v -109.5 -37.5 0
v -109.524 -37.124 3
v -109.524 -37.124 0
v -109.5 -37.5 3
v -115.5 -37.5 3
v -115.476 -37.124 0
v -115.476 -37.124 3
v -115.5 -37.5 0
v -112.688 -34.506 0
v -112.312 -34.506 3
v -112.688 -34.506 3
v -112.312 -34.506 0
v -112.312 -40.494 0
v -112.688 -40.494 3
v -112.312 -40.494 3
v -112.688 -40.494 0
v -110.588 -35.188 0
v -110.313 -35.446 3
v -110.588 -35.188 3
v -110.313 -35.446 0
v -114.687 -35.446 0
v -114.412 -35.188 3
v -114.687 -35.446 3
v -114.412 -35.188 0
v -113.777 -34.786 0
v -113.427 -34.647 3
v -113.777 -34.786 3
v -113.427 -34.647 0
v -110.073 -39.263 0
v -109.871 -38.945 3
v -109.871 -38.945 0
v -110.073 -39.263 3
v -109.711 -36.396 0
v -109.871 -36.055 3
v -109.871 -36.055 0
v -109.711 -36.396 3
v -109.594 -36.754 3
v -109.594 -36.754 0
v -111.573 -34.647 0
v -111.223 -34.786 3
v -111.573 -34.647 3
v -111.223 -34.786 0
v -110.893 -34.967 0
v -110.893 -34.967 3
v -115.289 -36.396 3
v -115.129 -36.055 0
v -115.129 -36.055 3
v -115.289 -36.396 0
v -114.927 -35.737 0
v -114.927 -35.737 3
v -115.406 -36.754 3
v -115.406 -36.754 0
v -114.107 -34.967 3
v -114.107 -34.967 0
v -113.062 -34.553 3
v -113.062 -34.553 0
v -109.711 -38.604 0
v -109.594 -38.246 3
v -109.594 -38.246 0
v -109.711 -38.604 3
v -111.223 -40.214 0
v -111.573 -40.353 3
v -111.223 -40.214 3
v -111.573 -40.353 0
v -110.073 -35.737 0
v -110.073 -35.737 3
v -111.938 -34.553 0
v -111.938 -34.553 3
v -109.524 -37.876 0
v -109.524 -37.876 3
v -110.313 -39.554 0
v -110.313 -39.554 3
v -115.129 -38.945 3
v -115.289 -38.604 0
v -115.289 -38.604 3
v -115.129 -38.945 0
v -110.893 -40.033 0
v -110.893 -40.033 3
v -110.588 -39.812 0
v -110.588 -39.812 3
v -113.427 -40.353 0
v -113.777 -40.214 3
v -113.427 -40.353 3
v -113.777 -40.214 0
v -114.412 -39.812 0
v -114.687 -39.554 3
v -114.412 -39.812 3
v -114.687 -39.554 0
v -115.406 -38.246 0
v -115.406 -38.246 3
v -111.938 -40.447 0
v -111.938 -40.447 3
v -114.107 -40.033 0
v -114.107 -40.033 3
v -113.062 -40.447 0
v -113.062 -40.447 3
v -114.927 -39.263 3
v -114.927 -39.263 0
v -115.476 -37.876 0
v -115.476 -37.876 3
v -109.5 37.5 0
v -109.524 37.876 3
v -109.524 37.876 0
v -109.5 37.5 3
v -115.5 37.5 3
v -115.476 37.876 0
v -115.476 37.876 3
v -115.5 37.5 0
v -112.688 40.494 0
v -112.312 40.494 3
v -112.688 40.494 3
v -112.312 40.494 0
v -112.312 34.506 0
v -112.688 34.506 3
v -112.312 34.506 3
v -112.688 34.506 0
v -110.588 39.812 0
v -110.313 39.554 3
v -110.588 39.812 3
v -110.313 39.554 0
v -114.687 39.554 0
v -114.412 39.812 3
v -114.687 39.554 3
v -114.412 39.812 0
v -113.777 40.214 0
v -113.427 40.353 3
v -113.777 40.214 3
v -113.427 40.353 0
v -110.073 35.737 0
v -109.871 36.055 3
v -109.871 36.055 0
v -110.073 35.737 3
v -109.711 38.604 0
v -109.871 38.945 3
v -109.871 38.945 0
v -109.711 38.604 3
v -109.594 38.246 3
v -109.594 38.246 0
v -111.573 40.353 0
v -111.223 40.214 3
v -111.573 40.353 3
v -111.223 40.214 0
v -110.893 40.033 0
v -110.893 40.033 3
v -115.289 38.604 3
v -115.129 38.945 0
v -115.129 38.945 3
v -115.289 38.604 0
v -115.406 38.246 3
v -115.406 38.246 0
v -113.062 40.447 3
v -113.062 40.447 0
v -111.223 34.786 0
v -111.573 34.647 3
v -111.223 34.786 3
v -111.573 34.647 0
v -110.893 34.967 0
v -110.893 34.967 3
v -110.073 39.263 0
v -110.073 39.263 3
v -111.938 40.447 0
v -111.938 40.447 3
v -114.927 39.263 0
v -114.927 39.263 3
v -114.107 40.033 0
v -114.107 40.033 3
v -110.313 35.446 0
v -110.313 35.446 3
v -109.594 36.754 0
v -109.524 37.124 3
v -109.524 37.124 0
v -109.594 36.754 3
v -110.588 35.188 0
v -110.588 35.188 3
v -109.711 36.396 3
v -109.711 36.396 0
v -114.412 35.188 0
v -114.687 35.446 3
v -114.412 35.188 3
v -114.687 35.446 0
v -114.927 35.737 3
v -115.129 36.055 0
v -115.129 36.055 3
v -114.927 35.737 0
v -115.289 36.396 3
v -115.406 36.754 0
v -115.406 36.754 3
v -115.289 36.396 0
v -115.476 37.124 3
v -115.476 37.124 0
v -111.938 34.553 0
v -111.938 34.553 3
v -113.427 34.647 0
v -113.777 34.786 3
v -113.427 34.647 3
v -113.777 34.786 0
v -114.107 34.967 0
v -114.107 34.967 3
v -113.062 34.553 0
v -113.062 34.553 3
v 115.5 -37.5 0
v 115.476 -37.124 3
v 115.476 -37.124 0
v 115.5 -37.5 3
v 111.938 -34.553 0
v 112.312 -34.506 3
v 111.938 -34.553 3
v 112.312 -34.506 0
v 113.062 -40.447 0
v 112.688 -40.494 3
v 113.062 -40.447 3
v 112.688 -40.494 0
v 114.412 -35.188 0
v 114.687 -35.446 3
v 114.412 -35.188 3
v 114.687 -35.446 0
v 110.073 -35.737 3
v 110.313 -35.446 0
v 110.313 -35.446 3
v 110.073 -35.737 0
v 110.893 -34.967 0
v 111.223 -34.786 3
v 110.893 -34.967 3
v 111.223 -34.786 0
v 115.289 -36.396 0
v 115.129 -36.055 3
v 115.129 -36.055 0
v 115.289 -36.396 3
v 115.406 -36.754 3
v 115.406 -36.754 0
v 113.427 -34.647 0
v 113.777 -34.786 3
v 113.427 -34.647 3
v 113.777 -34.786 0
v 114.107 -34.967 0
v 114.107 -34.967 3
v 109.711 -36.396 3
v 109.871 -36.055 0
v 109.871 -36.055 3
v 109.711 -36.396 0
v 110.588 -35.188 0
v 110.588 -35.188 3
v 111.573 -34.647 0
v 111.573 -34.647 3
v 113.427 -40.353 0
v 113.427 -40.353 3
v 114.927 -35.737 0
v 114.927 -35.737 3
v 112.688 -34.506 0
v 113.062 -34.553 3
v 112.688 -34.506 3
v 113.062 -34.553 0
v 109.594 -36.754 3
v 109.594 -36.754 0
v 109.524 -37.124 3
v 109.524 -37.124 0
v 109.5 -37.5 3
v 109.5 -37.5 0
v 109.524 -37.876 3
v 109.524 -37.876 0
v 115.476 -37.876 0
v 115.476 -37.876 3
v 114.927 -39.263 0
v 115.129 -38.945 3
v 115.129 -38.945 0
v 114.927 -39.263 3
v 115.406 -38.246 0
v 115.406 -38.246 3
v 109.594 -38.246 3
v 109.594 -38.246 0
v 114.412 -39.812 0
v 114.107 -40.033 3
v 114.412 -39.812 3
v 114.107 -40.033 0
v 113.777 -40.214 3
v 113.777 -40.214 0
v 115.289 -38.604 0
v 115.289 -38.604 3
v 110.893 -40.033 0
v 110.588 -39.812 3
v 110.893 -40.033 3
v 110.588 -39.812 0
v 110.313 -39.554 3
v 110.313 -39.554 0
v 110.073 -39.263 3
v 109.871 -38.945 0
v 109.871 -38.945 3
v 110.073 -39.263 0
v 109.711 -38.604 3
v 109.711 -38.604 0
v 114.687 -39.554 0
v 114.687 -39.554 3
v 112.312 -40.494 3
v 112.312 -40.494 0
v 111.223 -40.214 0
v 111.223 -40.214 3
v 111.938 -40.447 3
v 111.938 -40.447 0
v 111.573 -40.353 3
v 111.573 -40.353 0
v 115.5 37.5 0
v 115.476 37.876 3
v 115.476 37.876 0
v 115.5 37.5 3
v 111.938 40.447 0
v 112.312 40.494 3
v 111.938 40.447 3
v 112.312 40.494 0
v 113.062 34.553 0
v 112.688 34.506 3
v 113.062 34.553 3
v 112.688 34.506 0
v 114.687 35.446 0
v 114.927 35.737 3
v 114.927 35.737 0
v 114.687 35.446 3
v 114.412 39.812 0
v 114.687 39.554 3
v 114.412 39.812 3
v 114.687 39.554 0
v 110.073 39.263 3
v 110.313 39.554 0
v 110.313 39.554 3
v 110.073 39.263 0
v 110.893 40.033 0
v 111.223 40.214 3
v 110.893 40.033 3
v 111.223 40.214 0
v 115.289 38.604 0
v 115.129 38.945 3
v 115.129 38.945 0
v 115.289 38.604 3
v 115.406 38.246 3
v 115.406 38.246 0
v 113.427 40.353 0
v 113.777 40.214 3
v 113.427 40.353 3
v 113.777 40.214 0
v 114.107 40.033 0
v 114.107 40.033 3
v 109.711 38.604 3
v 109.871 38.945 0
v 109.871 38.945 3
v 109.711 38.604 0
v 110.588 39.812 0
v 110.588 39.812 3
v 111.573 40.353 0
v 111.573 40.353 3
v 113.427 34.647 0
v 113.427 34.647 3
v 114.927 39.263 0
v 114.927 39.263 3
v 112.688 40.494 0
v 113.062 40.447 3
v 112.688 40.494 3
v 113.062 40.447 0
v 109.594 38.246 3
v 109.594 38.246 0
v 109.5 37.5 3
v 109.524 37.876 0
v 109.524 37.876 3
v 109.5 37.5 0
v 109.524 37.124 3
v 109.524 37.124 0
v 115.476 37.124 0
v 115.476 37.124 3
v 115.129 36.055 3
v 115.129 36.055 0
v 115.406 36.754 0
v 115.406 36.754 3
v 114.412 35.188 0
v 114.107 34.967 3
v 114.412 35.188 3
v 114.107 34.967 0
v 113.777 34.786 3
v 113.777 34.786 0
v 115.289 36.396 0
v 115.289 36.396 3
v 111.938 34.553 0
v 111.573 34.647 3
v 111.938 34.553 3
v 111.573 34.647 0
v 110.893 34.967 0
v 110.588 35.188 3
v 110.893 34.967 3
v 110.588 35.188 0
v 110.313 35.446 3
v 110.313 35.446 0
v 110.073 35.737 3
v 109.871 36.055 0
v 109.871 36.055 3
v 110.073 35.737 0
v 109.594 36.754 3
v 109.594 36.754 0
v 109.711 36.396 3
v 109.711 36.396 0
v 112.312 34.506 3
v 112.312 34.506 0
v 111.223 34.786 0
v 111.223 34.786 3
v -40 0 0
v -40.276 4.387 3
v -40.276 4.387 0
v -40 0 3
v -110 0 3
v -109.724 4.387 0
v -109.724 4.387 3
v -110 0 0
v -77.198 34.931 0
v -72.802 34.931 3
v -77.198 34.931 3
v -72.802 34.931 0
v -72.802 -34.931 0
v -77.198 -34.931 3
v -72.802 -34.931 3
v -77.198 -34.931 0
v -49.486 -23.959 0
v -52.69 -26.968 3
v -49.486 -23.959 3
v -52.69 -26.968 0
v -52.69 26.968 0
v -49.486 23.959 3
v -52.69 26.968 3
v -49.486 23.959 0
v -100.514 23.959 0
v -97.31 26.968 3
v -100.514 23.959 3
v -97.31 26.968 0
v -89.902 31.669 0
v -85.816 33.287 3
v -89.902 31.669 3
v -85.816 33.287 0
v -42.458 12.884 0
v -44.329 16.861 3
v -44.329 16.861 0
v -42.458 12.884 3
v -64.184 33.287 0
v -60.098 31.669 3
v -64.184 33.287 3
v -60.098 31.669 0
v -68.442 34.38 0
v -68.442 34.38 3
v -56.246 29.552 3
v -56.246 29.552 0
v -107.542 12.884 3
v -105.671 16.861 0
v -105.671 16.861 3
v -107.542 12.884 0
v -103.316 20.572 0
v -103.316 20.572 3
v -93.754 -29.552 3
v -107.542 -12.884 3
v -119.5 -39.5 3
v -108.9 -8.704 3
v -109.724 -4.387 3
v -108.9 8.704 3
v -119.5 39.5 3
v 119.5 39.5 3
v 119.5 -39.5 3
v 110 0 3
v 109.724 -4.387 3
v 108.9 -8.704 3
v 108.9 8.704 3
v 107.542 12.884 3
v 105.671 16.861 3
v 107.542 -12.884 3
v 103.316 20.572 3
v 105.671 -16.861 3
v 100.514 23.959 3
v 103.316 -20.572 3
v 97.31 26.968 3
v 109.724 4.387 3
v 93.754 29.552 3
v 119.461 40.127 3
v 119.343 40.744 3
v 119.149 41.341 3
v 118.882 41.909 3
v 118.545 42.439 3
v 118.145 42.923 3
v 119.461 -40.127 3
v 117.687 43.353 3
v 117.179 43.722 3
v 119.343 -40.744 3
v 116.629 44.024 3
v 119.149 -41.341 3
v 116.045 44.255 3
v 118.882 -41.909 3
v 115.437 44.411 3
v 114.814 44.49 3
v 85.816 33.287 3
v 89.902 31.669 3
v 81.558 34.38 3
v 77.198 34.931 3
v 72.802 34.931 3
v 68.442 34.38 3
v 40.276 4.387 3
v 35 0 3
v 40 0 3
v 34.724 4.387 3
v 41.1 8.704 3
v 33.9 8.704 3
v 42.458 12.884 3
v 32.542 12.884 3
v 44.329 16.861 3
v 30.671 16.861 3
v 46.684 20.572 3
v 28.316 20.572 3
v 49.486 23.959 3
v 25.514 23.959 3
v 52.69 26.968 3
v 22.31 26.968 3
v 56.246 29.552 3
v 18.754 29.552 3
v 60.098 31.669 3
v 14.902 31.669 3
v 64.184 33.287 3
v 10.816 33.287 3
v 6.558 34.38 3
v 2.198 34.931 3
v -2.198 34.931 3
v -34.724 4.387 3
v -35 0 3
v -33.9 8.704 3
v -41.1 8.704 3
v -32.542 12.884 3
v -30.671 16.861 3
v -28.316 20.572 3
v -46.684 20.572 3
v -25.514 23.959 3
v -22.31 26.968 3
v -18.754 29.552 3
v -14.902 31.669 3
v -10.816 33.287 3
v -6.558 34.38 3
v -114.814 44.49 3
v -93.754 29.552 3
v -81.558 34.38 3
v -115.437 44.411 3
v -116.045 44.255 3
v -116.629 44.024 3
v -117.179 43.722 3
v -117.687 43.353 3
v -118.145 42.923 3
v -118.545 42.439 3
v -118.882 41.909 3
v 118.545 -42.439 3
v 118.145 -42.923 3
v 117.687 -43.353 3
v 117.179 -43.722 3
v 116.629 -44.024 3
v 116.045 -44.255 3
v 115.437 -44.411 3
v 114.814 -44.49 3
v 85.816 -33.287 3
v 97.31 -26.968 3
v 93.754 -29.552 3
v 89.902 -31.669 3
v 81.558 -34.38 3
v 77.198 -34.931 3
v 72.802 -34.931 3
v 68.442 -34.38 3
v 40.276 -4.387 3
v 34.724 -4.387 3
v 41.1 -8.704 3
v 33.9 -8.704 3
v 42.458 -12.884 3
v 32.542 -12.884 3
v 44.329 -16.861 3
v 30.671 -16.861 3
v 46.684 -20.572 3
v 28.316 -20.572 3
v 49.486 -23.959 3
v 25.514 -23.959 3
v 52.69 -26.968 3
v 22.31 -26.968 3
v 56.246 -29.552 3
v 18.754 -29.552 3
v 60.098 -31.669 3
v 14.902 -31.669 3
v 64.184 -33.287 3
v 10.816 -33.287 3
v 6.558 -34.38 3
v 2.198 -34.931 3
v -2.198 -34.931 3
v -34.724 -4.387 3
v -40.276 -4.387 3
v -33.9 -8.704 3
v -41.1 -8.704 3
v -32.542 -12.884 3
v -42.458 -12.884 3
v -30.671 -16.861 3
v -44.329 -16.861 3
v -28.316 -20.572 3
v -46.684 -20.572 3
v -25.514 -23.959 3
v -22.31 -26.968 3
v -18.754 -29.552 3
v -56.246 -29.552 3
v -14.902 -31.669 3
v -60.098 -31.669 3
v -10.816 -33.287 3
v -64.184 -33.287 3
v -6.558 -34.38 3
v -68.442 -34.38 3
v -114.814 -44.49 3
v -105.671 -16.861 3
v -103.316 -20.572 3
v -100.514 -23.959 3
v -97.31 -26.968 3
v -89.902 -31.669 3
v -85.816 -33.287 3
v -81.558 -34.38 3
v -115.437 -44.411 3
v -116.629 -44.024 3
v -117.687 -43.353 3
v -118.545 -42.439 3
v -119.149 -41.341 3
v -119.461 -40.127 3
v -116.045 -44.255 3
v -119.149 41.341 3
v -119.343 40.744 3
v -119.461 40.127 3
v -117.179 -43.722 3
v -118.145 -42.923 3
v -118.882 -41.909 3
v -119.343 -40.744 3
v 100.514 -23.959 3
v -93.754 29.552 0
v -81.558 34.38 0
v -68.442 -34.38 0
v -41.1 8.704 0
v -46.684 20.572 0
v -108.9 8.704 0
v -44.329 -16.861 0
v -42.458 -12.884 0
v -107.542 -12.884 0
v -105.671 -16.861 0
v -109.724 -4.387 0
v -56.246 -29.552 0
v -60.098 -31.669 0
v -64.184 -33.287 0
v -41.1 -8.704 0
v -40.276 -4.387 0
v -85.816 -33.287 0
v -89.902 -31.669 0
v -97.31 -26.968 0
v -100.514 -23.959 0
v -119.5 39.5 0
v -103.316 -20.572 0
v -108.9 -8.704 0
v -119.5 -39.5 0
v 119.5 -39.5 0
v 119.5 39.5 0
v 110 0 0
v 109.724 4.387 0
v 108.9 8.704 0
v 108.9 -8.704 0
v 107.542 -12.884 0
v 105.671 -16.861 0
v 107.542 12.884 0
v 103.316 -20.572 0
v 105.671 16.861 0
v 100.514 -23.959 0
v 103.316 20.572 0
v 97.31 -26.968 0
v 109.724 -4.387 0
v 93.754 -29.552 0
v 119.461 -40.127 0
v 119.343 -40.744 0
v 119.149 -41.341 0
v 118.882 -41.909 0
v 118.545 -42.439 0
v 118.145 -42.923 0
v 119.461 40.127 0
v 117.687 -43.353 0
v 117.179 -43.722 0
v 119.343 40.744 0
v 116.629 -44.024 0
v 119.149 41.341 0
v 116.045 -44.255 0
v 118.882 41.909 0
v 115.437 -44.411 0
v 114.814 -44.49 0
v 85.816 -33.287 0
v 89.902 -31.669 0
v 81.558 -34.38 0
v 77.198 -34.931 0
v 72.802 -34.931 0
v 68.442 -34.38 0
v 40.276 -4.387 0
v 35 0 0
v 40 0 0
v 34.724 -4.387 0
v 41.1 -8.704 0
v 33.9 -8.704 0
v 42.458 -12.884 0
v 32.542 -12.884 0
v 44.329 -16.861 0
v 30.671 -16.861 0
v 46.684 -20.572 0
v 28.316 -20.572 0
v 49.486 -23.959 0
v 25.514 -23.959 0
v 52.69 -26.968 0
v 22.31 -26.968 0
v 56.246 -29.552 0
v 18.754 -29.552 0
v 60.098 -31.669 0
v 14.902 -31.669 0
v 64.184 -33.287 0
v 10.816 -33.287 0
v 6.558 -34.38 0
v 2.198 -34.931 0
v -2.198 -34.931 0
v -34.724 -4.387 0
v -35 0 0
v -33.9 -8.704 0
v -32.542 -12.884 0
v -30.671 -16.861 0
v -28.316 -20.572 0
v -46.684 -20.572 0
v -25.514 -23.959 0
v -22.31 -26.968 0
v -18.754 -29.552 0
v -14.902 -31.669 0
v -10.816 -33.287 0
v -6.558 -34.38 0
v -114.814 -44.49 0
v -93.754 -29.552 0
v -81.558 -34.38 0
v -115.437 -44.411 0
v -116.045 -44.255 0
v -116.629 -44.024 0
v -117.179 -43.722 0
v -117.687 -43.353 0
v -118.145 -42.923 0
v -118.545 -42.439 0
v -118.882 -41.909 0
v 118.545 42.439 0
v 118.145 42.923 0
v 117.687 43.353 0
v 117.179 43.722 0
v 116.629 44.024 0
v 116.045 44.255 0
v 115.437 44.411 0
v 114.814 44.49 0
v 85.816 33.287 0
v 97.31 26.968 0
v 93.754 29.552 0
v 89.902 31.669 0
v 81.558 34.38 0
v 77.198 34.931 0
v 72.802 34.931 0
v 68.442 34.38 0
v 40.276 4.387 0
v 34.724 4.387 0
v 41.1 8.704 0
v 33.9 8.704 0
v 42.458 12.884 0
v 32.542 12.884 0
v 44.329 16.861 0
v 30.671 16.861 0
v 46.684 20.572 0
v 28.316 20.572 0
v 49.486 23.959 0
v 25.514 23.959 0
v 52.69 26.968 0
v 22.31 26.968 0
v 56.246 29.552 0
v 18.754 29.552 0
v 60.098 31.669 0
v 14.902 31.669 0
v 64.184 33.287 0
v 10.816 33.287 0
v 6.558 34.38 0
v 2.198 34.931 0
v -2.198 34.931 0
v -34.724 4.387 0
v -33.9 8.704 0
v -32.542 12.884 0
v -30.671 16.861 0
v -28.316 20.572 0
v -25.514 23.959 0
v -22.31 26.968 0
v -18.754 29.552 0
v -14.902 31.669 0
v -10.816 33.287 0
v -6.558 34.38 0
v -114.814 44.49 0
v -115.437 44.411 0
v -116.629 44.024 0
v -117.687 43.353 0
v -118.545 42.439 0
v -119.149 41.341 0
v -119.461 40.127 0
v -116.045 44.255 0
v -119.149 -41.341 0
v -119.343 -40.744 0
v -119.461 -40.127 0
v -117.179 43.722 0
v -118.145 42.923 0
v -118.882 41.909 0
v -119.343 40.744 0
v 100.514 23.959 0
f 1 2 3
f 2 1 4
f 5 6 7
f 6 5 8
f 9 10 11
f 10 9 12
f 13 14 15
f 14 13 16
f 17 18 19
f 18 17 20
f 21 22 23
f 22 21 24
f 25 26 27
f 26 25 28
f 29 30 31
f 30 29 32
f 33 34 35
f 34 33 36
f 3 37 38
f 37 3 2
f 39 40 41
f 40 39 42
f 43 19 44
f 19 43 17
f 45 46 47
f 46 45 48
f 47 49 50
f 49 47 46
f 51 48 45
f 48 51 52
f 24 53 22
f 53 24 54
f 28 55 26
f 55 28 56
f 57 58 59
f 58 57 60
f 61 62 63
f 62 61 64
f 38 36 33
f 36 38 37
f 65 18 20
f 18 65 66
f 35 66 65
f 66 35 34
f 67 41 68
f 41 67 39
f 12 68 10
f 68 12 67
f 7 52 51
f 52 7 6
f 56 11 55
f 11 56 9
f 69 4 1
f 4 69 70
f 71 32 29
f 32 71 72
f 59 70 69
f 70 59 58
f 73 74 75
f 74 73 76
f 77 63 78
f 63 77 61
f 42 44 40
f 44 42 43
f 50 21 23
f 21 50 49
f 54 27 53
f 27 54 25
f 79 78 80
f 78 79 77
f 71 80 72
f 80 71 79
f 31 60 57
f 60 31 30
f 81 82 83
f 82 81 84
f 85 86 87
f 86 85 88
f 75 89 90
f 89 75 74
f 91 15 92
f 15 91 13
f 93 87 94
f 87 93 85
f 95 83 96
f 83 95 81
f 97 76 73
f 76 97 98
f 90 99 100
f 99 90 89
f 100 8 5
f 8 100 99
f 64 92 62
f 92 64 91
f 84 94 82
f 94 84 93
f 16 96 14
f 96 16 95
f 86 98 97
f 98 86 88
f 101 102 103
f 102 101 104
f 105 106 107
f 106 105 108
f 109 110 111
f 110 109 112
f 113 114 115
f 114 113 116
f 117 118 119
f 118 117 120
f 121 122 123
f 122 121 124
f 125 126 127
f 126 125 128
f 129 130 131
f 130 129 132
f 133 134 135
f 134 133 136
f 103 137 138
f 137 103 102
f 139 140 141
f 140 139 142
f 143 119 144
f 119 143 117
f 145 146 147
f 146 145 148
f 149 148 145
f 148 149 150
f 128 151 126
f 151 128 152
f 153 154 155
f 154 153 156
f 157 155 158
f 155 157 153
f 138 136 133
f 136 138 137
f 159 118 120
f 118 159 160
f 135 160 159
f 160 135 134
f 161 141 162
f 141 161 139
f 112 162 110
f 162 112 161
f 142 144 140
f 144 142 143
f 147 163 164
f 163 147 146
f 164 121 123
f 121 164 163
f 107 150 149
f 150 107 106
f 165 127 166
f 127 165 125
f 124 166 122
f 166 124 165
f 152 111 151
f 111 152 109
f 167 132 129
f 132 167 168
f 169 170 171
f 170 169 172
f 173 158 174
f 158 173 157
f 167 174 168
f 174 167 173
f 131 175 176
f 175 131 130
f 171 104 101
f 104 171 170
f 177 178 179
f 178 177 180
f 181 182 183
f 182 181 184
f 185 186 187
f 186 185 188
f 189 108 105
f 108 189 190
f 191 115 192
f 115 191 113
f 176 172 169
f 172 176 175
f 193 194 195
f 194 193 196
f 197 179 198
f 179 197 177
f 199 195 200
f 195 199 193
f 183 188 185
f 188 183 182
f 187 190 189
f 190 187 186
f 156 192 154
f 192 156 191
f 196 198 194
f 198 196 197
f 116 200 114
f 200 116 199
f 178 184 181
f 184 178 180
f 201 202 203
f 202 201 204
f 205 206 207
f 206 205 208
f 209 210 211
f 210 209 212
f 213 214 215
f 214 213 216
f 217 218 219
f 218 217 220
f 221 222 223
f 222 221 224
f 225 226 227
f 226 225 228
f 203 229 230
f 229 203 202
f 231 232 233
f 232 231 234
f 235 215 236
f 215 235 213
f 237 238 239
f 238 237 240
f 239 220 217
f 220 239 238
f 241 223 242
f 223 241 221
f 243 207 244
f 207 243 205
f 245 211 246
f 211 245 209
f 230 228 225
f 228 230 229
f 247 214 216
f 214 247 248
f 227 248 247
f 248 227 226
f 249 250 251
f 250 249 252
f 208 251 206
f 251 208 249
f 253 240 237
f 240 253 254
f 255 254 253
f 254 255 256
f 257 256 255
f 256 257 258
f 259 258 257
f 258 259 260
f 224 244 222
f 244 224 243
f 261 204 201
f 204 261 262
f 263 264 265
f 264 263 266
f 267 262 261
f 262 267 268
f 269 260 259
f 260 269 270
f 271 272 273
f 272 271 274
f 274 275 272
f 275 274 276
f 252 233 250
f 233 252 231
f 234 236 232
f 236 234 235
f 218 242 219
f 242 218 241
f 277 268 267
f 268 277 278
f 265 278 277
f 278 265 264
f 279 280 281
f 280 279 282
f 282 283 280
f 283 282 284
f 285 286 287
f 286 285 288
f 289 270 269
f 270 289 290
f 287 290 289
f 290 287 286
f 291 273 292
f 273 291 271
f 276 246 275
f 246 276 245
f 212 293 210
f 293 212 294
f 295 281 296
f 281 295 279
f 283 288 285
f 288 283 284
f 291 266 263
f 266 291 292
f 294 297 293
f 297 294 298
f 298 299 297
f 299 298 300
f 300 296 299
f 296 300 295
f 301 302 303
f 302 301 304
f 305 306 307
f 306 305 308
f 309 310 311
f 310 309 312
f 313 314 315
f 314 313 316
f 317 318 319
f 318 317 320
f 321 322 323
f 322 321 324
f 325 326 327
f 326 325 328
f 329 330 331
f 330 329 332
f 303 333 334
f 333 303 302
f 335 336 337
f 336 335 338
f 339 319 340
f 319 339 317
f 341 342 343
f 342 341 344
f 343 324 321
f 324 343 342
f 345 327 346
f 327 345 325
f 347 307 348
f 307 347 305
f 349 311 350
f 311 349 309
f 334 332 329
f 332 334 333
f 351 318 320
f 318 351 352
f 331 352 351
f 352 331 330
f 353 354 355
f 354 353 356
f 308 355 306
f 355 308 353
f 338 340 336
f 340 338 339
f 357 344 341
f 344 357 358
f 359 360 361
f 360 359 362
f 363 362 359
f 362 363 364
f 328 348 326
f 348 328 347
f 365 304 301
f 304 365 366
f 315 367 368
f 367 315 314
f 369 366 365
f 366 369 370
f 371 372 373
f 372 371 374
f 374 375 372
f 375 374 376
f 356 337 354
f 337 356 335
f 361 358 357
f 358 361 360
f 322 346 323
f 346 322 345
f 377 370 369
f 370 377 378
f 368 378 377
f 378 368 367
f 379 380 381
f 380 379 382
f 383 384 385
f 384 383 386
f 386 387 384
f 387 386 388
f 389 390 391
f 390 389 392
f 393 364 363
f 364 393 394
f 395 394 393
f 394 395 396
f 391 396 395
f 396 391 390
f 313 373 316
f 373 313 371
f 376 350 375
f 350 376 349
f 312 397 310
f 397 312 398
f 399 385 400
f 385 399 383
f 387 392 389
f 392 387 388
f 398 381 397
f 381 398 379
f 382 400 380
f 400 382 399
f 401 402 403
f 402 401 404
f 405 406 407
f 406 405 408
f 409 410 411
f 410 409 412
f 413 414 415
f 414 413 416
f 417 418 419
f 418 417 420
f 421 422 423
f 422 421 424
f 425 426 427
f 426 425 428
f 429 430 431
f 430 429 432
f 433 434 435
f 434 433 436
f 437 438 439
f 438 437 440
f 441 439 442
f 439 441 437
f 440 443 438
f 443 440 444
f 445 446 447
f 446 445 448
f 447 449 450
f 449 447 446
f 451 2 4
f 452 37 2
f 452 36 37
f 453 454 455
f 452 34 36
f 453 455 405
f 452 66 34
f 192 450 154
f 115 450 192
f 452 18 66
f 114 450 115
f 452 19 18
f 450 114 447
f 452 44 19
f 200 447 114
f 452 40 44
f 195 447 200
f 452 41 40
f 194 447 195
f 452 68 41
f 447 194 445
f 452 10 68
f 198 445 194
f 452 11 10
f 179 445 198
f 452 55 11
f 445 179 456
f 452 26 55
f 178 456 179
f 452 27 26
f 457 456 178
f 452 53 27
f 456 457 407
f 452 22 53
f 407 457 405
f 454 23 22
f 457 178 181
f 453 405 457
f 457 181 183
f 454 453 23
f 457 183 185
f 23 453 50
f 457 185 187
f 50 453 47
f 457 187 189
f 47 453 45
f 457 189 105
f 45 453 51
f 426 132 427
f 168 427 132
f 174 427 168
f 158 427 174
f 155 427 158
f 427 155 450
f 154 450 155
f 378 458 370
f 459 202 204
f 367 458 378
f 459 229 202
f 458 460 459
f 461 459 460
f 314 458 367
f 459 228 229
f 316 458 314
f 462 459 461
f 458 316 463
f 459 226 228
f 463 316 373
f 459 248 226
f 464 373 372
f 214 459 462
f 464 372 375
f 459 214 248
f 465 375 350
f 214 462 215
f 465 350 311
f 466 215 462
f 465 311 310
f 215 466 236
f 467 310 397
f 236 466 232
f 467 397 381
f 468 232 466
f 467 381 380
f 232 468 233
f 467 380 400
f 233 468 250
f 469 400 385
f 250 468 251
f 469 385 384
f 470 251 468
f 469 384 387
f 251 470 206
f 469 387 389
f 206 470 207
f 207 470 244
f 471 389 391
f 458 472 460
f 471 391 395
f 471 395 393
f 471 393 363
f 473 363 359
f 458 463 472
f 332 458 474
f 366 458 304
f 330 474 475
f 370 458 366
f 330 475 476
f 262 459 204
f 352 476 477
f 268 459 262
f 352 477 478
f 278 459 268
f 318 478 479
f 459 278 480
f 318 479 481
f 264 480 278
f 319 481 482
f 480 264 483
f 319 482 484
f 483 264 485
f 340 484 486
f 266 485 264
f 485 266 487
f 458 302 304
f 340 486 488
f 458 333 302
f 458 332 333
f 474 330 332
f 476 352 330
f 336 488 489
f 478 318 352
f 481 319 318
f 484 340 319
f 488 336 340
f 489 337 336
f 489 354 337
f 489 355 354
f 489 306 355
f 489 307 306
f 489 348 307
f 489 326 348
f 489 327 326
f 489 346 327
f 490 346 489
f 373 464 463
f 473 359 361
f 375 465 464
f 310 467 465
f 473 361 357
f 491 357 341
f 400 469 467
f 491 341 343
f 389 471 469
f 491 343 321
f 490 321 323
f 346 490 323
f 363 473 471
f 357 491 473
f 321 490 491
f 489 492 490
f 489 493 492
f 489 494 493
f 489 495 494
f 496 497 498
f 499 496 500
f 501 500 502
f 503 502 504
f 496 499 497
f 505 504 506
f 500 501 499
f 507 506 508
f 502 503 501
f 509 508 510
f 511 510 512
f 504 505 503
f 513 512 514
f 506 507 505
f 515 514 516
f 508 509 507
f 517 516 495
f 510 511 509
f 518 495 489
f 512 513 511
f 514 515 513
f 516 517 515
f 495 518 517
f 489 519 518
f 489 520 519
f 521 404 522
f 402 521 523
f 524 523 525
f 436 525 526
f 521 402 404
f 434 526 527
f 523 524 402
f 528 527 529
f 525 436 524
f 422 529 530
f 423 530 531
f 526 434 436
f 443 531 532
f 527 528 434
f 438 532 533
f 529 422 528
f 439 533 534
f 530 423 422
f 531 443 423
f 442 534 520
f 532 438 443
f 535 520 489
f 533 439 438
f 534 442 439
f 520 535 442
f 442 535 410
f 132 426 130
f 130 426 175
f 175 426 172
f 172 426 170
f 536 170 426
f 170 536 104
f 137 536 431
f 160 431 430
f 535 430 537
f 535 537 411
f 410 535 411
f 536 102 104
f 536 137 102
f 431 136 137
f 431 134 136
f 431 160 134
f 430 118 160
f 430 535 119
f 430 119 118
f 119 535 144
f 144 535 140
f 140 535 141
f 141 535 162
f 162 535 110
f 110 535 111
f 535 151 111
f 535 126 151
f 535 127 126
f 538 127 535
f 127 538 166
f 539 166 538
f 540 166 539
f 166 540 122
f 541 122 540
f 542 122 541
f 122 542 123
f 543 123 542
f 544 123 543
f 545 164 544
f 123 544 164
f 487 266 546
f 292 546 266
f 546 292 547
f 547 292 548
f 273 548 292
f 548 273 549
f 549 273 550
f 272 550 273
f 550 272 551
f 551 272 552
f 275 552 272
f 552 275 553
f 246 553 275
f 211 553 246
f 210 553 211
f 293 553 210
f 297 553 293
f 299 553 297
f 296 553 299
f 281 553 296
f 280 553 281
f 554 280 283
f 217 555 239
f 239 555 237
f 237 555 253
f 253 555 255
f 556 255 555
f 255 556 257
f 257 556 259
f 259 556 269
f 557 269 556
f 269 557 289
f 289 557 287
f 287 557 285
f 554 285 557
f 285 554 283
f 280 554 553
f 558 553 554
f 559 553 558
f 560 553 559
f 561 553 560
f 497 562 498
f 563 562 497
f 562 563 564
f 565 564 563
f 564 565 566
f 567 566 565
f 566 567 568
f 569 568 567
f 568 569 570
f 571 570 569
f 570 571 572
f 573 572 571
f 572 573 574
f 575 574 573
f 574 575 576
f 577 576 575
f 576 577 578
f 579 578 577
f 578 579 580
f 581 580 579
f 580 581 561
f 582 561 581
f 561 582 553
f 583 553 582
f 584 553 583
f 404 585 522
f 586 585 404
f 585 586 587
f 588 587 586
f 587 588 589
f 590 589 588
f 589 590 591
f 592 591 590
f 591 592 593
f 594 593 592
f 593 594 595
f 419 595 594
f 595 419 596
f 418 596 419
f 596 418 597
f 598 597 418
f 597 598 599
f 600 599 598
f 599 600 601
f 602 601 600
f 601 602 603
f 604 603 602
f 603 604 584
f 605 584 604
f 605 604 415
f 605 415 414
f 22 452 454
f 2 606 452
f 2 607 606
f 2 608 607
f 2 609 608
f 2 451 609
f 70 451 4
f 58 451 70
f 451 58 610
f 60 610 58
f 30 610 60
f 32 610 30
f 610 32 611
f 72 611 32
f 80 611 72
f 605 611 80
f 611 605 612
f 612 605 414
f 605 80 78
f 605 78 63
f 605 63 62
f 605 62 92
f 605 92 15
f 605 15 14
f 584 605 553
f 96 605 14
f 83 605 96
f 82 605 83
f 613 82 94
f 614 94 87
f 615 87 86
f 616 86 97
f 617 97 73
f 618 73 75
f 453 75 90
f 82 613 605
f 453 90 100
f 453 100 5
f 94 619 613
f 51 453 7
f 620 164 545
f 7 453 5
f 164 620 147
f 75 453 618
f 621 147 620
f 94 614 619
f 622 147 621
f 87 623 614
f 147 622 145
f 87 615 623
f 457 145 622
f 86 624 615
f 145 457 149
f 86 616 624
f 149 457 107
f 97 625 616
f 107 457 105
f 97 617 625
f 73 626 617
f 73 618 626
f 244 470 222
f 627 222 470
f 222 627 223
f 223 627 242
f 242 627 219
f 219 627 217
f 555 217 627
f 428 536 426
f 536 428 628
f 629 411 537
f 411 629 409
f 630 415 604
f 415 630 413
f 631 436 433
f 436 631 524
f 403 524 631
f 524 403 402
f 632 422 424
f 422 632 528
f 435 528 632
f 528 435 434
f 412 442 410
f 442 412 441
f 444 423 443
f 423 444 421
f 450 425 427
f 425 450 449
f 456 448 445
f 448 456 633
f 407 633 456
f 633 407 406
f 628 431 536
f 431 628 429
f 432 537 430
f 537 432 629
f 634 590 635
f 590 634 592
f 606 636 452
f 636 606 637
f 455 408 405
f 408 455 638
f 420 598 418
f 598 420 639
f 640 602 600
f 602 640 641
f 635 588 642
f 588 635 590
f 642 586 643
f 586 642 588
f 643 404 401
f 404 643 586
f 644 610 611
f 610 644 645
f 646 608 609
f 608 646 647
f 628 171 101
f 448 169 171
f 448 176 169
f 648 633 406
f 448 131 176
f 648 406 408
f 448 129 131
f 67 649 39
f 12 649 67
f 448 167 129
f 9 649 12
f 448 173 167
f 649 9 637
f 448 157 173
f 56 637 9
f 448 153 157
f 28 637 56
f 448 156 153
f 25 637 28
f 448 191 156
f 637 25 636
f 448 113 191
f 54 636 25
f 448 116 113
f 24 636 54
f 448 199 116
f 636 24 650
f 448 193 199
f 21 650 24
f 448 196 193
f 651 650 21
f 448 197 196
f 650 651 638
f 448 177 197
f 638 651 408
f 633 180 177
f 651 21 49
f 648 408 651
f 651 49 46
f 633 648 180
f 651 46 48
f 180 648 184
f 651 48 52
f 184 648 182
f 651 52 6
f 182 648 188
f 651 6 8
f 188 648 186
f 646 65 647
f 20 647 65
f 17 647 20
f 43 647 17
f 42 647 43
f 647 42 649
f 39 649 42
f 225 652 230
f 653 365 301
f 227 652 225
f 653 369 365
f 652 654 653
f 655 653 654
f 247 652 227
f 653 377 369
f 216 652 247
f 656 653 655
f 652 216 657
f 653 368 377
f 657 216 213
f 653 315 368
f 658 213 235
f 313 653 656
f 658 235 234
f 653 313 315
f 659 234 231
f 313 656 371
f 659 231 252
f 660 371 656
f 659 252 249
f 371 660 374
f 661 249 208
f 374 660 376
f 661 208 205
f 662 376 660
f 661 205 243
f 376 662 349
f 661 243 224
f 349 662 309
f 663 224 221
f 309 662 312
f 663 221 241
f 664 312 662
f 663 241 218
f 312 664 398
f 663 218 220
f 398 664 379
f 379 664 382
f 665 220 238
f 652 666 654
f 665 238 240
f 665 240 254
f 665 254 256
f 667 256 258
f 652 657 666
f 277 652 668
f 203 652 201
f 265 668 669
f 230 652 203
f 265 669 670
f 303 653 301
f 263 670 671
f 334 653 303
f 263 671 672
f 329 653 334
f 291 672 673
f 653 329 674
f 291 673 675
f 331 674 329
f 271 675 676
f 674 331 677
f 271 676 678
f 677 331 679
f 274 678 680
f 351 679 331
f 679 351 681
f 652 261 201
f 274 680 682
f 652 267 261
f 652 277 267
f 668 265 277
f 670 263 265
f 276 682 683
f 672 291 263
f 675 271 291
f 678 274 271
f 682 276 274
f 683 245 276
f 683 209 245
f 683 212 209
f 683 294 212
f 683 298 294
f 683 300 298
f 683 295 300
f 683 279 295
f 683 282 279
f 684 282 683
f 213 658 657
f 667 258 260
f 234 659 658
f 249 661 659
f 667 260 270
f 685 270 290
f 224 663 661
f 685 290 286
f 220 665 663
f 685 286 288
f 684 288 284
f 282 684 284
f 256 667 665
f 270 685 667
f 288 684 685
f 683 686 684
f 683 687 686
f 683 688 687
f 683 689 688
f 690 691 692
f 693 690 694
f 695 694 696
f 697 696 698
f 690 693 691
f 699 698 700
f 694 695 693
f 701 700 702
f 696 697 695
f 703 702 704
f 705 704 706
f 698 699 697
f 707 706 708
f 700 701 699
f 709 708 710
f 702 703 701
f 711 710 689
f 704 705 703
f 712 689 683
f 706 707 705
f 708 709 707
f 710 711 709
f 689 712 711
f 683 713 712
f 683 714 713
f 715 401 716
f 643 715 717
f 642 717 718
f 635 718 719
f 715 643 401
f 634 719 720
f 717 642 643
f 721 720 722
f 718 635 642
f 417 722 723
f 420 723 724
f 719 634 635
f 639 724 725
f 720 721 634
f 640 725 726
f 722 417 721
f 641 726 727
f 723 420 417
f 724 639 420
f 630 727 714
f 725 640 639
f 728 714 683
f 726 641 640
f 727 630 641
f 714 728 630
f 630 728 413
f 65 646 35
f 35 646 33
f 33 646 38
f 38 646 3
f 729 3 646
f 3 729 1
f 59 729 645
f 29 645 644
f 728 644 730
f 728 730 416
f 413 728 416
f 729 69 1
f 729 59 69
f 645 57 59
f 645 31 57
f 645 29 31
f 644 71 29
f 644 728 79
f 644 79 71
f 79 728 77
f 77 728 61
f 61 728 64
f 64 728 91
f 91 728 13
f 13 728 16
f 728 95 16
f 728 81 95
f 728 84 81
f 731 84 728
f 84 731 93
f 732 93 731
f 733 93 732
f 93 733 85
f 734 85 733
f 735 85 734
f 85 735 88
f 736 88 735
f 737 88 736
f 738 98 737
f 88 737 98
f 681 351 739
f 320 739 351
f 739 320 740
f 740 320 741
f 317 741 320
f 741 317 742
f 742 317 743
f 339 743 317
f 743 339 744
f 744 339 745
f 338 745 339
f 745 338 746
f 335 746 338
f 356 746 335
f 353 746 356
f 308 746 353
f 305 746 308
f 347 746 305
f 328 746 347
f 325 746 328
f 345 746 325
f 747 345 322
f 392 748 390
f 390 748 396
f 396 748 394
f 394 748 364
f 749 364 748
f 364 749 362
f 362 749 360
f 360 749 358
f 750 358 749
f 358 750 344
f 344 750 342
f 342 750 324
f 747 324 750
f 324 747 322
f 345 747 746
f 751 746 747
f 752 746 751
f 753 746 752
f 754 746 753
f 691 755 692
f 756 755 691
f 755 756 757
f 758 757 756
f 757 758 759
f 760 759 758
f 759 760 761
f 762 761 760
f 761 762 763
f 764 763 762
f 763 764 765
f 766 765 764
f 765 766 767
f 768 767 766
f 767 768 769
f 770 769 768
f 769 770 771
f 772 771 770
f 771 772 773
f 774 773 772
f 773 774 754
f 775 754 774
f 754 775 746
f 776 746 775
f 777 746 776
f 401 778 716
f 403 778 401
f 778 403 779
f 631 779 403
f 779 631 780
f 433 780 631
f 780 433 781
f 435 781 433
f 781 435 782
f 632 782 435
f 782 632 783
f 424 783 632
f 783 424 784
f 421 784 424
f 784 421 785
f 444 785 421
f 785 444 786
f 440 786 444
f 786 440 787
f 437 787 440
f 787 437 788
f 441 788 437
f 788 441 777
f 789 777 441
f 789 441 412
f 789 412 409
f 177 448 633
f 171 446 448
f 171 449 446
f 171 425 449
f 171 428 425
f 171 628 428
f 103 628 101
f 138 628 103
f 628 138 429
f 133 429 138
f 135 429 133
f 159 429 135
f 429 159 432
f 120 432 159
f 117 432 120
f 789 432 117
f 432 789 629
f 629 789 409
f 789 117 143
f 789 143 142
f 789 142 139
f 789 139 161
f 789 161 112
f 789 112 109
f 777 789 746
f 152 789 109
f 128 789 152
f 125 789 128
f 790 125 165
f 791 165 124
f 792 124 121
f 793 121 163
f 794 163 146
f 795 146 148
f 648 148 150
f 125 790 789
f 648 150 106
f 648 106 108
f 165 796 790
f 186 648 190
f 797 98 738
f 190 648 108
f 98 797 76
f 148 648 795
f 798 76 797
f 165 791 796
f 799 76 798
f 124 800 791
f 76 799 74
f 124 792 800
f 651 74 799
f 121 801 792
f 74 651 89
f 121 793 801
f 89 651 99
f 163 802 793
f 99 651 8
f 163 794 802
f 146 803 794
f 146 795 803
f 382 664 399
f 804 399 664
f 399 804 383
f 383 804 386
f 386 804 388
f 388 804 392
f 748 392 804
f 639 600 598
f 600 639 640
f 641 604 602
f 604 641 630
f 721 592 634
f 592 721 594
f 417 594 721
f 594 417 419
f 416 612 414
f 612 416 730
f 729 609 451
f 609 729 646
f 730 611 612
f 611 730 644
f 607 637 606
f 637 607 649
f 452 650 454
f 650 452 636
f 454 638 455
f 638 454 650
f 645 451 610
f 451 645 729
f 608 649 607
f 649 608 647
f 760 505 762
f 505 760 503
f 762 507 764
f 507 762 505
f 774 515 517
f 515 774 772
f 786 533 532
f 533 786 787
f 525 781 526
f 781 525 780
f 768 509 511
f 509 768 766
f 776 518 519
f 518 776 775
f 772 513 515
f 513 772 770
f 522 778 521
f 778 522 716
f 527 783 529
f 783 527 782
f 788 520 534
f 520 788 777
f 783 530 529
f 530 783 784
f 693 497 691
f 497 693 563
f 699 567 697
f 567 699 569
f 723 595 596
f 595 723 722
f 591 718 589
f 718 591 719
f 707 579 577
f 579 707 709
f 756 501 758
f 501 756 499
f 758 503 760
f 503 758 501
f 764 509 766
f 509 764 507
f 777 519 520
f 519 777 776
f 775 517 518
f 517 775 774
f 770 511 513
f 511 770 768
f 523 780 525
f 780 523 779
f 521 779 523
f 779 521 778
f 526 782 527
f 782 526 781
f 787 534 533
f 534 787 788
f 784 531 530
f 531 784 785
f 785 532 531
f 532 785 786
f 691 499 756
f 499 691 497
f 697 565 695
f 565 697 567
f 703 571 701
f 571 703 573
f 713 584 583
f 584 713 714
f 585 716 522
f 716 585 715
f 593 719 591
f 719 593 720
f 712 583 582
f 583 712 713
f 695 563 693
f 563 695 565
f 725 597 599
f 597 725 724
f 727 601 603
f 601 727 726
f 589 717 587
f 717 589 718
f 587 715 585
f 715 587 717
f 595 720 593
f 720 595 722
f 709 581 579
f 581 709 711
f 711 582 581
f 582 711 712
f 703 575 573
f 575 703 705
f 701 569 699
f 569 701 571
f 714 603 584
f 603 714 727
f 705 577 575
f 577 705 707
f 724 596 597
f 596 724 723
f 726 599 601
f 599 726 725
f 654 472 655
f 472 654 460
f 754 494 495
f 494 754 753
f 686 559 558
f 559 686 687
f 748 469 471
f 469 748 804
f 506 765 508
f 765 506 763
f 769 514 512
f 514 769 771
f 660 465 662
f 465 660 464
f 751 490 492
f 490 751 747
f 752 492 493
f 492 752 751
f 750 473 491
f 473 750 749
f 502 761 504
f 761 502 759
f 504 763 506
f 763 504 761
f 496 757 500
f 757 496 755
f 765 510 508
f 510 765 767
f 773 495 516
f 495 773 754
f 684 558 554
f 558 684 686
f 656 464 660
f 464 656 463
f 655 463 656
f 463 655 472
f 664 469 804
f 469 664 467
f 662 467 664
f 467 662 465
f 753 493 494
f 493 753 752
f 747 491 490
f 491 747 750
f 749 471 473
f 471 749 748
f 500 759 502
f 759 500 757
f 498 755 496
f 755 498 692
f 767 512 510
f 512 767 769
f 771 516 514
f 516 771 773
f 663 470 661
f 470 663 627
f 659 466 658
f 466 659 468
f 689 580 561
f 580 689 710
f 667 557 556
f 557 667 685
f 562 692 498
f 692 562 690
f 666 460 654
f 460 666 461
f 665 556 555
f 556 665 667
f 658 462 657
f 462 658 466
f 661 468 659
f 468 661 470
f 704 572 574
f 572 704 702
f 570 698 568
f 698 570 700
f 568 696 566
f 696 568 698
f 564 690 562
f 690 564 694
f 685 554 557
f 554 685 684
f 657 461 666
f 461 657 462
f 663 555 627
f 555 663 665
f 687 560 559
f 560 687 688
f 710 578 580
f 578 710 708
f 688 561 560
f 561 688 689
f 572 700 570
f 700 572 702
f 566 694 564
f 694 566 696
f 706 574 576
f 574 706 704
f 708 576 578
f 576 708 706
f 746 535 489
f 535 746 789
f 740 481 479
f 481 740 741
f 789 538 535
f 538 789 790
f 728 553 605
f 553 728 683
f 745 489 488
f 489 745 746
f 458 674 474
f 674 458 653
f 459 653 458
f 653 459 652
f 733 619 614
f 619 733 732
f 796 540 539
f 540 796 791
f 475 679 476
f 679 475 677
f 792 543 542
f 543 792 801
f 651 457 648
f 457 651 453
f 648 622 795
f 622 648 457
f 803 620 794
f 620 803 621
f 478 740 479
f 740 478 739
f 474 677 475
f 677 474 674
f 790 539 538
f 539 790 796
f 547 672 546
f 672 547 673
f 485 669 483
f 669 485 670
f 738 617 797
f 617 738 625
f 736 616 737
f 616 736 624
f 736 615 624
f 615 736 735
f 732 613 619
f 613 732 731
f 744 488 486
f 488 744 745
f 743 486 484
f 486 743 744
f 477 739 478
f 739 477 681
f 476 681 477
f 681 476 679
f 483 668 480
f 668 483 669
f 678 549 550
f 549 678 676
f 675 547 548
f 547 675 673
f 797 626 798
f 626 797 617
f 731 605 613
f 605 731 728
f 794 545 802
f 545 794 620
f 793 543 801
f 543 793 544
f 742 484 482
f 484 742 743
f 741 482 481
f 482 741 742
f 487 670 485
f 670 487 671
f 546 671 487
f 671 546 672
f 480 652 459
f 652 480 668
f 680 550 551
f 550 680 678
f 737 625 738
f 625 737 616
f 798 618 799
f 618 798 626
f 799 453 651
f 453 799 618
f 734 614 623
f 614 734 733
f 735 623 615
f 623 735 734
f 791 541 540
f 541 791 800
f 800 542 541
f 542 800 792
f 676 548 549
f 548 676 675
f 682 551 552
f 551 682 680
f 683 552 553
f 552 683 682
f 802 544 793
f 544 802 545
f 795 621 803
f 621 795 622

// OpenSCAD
$fn = 50;


difference() {
	union() {
		hull() {
			translate(v = [-114.5000000000, 39.5000000000, 0]) {
				cylinder(h = 3, r = 5);
			}
			translate(v = [114.5000000000, 39.5000000000, 0]) {
				cylinder(h = 3, r = 5);
			}
			translate(v = [-114.5000000000, -39.5000000000, 0]) {
				cylinder(h = 3, r = 5);
			}
			translate(v = [114.5000000000, -39.5000000000, 0]) {
				cylinder(h = 3, r = 5);
			}
		}
	}
	union() {
		#translate(v = [-112.5000000000, -37.5000000000, -100.0000000000]) {
			cylinder(h = 200, r = 3.0000000000);
		}
		#translate(v = [-112.5000000000, 37.5000000000, -100.0000000000]) {
			cylinder(h = 200, r = 3.0000000000);
		}
		#translate(v = [112.5000000000, -37.5000000000, -100.0000000000]) {
			cylinder(h = 200, r = 3.0000000000);
		}
		#translate(v = [112.5000000000, 37.5000000000, -100.0000000000]) {
			cylinder(h = 200, r = 3.0000000000);
		}
		#translate(v = [-75.0000000000, 0, 0]) {
			cylinder(h = 3, r = 35.0000000000);
		}
		#cylinder(h = 3, r = 35.0000000000);
		#translate(v = [75.0000000000, 0, 0]) {
			cylinder(h = 3, r = 35.0000000000);
		}
	}
}
